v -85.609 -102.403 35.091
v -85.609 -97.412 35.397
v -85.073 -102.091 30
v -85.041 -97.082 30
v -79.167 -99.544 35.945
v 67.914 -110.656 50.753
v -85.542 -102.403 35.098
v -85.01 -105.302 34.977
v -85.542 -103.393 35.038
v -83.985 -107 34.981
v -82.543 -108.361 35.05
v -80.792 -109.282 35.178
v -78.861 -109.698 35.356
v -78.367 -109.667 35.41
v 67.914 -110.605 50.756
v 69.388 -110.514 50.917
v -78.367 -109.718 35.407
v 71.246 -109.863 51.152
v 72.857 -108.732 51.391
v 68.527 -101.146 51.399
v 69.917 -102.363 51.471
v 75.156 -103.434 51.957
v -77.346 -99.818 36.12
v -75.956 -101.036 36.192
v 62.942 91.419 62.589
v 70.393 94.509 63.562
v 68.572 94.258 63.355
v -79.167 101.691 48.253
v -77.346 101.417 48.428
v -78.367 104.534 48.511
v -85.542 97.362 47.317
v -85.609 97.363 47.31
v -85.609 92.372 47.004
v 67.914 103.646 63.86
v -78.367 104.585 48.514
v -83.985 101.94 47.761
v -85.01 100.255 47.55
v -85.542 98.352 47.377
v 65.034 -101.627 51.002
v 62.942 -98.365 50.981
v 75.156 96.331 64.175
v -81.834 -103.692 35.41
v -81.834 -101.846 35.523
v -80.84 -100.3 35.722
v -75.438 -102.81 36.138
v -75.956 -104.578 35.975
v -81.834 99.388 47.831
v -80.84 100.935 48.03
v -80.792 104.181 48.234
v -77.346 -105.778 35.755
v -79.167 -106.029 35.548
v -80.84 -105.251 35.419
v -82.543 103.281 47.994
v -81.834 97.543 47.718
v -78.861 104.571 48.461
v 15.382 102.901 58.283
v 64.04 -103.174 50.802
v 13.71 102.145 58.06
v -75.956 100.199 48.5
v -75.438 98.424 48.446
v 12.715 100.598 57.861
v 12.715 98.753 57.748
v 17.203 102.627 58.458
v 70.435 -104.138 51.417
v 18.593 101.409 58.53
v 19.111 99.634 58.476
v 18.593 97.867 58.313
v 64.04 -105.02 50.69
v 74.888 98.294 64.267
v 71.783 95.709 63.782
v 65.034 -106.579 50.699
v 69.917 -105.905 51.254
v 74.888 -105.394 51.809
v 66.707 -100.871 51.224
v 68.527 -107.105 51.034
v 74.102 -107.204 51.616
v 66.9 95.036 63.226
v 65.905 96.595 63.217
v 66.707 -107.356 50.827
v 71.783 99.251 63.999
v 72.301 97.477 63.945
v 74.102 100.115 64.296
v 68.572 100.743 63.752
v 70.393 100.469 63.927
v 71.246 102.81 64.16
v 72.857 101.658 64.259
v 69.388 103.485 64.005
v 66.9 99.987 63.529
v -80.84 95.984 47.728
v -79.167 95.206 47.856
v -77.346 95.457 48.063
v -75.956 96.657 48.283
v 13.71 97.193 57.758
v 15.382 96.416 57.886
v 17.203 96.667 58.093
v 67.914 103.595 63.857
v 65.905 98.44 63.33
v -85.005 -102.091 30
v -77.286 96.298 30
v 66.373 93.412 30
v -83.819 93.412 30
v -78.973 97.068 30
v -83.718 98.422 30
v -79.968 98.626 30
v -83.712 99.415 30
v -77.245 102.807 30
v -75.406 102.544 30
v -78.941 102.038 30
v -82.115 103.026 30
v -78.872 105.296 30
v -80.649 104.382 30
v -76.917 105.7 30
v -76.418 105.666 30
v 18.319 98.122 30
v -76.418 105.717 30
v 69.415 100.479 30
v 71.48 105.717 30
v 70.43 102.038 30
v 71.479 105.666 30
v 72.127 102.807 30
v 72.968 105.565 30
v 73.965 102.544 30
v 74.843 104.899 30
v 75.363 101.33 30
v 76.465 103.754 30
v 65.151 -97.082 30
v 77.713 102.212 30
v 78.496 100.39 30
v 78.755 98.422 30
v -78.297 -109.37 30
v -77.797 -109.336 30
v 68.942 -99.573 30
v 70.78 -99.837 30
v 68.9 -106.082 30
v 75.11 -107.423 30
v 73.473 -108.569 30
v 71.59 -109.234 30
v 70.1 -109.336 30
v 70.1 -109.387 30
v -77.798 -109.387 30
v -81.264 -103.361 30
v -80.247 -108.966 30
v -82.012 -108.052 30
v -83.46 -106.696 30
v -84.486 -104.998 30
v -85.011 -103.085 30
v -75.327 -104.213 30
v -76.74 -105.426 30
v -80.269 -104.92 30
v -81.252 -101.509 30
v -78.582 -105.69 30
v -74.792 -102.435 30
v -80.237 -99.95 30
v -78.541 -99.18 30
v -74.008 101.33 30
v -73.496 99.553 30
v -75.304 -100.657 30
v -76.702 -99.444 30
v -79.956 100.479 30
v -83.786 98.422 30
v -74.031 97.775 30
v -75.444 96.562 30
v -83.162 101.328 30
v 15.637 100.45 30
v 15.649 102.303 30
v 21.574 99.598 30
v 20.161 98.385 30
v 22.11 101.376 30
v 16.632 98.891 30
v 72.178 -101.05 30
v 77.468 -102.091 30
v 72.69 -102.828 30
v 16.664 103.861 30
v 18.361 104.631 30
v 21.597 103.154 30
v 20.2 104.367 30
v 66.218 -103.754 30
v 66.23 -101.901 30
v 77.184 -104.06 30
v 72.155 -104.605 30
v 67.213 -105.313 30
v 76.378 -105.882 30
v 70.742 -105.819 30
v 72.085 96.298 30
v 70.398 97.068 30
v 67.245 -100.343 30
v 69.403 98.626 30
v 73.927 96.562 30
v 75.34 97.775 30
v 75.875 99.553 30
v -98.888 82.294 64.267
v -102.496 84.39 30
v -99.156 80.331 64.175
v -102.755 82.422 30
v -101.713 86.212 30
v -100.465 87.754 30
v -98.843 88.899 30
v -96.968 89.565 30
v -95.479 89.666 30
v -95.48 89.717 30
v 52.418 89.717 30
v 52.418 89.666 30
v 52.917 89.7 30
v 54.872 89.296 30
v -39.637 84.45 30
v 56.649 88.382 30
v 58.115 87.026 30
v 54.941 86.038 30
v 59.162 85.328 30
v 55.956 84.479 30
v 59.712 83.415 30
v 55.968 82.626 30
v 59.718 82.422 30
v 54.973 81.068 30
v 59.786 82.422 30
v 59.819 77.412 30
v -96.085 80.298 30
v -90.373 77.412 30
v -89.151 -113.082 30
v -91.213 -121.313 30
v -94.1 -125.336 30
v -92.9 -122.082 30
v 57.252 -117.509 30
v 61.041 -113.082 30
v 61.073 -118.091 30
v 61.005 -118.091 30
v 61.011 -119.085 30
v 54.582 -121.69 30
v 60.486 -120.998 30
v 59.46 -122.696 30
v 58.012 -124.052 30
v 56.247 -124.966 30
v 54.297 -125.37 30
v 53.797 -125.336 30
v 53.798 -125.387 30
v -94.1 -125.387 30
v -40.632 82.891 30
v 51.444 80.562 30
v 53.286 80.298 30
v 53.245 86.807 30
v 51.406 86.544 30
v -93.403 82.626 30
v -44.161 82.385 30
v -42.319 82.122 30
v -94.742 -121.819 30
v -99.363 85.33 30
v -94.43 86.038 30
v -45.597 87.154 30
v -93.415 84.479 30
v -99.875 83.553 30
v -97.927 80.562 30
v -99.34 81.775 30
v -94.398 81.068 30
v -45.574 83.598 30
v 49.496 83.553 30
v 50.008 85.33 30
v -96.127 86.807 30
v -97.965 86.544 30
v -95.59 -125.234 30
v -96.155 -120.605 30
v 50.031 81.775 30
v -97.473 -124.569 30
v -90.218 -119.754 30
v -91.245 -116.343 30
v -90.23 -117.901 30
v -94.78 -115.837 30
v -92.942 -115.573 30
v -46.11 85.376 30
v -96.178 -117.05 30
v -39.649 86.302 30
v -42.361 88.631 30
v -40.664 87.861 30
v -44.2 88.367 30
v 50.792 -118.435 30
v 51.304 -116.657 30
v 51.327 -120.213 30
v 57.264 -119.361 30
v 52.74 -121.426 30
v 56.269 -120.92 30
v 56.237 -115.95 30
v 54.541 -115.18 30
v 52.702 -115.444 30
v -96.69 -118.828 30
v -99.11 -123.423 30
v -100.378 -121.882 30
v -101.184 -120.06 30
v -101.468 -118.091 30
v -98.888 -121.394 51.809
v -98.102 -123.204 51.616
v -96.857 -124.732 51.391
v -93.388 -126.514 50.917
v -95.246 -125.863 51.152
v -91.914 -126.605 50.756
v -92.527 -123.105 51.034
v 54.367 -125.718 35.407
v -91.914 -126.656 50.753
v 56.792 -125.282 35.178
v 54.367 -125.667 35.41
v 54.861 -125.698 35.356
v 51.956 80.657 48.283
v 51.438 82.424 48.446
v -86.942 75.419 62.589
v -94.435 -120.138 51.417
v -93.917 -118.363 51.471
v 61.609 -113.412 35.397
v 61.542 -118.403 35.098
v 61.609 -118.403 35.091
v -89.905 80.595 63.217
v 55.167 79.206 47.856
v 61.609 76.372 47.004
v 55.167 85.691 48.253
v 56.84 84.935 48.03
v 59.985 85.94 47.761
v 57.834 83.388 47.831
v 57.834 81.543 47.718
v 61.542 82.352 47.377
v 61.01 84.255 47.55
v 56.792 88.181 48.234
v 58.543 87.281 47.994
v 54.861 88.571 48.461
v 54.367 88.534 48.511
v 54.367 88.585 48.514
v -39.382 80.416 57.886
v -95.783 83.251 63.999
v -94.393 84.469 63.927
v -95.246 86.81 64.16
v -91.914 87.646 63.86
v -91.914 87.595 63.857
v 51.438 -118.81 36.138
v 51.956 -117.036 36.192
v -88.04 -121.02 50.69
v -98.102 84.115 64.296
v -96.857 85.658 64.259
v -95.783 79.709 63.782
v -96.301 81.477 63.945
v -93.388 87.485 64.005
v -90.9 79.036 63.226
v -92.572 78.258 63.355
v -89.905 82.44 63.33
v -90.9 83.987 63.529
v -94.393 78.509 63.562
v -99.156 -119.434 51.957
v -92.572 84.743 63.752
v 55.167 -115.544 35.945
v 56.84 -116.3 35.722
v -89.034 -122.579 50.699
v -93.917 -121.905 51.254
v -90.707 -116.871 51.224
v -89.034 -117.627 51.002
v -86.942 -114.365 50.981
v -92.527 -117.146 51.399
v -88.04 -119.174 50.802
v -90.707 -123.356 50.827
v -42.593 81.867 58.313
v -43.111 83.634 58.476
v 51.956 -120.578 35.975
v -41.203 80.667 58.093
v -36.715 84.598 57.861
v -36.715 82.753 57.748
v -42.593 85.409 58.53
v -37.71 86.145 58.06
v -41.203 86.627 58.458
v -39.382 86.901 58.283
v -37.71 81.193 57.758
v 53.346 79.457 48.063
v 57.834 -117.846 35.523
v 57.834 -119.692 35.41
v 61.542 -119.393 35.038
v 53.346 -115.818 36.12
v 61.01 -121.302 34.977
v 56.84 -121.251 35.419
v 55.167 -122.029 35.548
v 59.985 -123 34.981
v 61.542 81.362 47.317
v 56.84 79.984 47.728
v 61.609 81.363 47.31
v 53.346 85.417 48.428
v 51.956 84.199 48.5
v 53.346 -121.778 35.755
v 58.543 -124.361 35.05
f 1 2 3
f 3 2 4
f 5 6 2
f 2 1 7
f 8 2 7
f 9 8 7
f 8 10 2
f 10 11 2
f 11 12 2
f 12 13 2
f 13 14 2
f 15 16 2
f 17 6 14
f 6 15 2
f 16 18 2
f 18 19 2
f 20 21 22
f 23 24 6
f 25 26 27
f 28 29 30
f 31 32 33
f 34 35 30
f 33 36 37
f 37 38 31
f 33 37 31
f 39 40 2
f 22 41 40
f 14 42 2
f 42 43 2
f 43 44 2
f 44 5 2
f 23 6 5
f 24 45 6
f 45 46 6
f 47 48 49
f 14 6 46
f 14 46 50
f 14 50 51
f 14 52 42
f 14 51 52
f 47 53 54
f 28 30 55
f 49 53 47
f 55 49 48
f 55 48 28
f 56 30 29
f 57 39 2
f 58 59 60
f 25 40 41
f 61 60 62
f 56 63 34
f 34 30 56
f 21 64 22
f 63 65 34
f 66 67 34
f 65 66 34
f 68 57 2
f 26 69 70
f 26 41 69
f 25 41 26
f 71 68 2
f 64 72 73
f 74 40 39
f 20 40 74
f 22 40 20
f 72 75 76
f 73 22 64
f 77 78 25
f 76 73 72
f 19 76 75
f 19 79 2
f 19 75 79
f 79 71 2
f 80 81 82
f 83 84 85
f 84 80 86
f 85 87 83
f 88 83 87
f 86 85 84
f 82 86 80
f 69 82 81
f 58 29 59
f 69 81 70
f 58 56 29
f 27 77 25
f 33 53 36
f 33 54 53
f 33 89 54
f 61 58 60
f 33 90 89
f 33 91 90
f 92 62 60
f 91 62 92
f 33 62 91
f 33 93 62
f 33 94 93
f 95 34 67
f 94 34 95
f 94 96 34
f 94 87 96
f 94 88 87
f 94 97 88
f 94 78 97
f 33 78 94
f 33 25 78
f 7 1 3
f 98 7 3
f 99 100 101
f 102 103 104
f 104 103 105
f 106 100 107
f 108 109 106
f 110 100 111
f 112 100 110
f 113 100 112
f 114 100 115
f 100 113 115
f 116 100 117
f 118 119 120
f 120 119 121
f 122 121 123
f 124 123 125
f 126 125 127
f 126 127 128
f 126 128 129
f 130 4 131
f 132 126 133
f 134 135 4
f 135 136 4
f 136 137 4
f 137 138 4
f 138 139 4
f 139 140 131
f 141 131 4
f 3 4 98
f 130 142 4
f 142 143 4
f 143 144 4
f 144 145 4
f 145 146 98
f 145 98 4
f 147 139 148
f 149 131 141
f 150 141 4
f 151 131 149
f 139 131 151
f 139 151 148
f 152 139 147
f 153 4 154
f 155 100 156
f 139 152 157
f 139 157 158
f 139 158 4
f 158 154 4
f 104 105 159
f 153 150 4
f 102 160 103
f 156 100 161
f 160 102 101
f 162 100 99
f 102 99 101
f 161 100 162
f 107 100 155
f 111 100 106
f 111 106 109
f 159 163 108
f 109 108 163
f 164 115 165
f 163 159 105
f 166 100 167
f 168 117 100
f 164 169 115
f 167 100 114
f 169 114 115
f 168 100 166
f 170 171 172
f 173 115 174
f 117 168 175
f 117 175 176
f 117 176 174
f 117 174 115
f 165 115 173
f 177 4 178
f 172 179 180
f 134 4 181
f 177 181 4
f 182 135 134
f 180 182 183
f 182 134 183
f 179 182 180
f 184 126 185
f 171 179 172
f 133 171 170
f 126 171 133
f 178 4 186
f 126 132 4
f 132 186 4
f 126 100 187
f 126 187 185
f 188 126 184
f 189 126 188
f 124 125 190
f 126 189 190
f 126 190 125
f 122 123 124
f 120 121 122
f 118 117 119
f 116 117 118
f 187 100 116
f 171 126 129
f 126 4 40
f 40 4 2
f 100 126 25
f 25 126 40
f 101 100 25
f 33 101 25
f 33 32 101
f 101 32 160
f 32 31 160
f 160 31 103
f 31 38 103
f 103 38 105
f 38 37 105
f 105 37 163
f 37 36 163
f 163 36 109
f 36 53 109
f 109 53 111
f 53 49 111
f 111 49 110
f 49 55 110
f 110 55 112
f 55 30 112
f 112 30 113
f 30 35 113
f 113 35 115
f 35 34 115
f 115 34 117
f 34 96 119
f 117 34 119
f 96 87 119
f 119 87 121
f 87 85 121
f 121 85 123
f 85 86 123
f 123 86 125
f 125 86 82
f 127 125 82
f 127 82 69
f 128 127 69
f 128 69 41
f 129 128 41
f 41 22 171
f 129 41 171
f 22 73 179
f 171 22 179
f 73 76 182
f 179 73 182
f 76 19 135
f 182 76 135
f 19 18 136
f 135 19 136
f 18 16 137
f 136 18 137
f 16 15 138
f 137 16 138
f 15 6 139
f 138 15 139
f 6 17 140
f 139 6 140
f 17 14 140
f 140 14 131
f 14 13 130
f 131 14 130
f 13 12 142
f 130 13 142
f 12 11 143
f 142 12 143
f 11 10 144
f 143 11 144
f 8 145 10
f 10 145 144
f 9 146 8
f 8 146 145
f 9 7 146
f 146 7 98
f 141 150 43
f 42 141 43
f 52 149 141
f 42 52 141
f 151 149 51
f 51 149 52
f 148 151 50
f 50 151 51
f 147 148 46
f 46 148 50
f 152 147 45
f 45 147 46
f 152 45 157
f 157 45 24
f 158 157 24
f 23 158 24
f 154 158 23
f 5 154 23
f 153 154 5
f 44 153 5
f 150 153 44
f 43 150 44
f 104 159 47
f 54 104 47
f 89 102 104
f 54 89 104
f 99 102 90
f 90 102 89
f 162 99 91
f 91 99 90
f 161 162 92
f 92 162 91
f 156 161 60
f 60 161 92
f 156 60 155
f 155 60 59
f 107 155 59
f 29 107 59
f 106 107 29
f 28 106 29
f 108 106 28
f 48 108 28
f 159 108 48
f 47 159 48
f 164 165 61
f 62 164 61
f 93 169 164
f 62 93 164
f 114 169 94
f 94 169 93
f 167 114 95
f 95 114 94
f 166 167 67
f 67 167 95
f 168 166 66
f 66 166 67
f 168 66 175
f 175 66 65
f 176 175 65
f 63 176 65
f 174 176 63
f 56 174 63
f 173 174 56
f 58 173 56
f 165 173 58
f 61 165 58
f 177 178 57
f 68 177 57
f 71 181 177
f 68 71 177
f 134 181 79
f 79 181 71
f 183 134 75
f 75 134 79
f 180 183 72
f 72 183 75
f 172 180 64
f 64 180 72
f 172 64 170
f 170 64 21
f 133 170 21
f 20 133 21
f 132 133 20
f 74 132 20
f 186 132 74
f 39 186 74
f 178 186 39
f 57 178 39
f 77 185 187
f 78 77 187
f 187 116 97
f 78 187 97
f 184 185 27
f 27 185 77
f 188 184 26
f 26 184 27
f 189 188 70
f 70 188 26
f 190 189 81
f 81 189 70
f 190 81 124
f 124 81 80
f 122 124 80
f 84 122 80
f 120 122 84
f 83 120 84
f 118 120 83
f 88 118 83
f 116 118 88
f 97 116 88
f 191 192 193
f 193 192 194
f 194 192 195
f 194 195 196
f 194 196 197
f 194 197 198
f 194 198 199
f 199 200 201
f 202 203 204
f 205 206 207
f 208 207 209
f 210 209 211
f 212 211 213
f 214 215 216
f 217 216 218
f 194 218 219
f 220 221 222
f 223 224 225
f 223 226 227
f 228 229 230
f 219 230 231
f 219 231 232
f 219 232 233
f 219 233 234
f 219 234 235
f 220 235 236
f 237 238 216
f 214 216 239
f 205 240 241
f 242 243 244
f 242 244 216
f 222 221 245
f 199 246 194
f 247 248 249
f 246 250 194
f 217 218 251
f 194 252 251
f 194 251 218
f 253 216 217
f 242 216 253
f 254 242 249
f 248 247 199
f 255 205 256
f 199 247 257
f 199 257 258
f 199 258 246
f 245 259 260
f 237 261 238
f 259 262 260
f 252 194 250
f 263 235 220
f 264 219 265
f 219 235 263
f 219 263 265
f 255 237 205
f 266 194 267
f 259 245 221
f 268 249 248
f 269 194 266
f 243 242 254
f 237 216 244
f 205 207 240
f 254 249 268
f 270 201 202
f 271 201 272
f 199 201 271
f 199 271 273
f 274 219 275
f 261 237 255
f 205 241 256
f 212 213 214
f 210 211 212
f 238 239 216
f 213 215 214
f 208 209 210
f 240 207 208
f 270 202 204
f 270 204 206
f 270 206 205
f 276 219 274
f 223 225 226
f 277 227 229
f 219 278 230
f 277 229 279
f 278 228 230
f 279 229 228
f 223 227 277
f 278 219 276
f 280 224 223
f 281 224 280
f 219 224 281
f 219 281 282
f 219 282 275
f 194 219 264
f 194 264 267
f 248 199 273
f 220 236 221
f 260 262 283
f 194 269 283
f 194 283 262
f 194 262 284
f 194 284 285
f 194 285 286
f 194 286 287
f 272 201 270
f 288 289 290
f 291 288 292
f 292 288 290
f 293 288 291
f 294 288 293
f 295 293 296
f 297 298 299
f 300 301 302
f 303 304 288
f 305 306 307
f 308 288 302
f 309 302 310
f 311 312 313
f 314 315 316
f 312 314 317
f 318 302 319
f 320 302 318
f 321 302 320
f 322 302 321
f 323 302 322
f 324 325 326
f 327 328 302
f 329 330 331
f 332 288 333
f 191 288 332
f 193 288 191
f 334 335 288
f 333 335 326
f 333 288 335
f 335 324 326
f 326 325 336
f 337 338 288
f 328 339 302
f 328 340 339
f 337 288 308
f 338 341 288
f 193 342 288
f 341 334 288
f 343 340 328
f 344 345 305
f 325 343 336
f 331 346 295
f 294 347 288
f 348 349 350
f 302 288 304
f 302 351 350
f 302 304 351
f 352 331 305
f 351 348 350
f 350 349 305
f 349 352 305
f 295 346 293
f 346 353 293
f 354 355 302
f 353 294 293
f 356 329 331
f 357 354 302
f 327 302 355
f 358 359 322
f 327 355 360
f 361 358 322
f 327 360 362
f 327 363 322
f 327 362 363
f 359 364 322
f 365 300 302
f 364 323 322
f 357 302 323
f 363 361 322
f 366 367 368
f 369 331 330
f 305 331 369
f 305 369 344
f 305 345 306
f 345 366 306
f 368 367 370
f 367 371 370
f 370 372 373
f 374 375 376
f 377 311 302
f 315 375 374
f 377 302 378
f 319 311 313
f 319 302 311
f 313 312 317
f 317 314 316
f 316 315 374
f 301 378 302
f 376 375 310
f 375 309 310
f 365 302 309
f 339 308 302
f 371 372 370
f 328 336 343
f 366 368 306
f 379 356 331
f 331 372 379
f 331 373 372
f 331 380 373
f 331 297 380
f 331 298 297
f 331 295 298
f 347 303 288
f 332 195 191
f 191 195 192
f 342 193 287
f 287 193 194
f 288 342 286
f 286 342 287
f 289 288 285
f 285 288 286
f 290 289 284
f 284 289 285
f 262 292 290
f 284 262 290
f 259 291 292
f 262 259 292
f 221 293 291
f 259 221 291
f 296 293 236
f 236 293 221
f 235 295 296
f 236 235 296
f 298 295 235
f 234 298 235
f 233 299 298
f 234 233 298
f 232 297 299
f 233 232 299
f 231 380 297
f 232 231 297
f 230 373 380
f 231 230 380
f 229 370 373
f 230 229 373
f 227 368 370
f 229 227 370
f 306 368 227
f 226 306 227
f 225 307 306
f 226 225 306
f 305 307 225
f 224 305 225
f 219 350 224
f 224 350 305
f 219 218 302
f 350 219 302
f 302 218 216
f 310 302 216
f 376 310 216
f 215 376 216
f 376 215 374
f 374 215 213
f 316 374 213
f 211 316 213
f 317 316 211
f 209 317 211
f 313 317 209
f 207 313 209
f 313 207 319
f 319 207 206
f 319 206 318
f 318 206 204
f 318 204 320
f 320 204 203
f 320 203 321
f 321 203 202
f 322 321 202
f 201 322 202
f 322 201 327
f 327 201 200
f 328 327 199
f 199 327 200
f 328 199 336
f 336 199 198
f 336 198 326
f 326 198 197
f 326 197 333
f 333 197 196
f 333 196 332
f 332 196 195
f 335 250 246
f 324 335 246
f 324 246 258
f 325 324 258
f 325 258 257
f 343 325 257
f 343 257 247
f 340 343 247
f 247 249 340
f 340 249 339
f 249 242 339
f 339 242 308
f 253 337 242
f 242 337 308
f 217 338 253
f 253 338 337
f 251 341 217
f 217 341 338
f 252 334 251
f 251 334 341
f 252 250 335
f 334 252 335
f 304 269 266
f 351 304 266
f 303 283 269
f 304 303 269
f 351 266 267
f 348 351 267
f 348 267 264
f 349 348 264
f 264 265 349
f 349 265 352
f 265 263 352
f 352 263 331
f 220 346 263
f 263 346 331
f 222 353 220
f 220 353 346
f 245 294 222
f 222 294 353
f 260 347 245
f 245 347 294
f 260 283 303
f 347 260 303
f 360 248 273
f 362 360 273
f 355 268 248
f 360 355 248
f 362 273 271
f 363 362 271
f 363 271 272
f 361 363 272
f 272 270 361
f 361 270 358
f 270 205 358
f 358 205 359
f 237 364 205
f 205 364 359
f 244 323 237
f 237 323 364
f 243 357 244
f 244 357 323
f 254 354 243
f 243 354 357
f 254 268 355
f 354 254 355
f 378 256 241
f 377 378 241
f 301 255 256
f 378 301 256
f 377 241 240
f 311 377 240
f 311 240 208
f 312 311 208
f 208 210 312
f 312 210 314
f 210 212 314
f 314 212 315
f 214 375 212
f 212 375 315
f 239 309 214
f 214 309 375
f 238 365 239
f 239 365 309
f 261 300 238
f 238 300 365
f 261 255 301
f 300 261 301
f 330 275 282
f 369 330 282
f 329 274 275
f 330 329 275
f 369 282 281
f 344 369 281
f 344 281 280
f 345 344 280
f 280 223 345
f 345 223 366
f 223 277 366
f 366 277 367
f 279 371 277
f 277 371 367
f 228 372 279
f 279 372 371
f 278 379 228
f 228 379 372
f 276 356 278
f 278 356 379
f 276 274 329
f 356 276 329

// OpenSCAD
union () {
  difference () {
    rotate (a=3.5, v=[1,0,0]) {
      rotate (a=-6.0, v=[0,1,0]) {
        difference () {
          translate ([0,0,25]) {
            union () {
              cube([161.65099999999998, 200.139, 50], center=true);
              cube([147.087, 214.703, 50], center=true);
              translate ([73.5435,100.0695,0]) {
                cylinder (h=50, r=7.282, center=true);
              }
              translate ([-73.5435,100.0695,0]) {
                cylinder (h=50, r=7.282, center=true);
              }
              translate ([-73.5435,-100.0695,0]) {
                cylinder (h=50, r=7.282, center=true);
              }
              translate ([73.5435,-100.0695,0]) {
                cylinder (h=50, r=7.282, center=true);
              }
            }
          }
          translate ([74.6725,101.19850000000001,0]) {
            cylinder (h=250, r=3.282, center=true);
          }
          translate ([21.189500000000002,103.0185,0]) {
            cylinder (h=250, r=3.282, center=true);
          }
          translate ([-73.8805,101.19850000000001,0]) {
            cylinder (h=250, r=3.282, center=true);
          }
          translate ([6.525499999999994,-26.522499999999994,0]) {
            cylinder (h=250, r=3.282, center=true);
          }
          translate ([-73.8805,-100.41249999999998,0]) {
            cylinder (h=250, r=3.282, center=true);
          }
          translate ([72.7965,-100.80449999999998,0]) {
            cylinder (h=250, r=3.282, center=true);
          }
          translate ([-10,0,25]) {
            cube([157.087, 190.139, 60], center=true);
          }
        }
      }
    }
    translate ([0,0,-20]) {
      cube([1000, 1000, 100], center=true);
    }
  }
  translate ([-24,-16,0]) {
    mirror ([1,0,0]) {
      difference () {
        rotate (a=3.5, v=[1,0,0]) {
          rotate (a=-6.0, v=[0,1,0]) {
            difference () {
              translate ([0,0,25]) {
                union () {
                  cube([161.65099999999998, 200.139, 50], center=true);
                  cube([147.087, 214.703, 50], center=true);
                  translate ([73.5435,100.0695,0]) {
                    cylinder (h=50, r=7.282, center=true);
                  }
                  translate ([-73.5435,100.0695,0]) {
                    cylinder (h=50, r=7.282, center=true);
                  }
                  translate ([-73.5435,-100.0695,0]) {
                    cylinder (h=50, r=7.282, center=true);
                  }
                  translate ([73.5435,-100.0695,0]) {
                    cylinder (h=50, r=7.282, center=true);
                  }
                }
              }
              translate ([74.6725,101.19850000000001,0]) {
                cylinder (h=250, r=3.282, center=true);
              }
              translate ([21.189500000000002,103.0185,0]) {
                cylinder (h=250, r=3.282, center=true);
              }
              translate ([-73.8805,101.19850000000001,0]) {
                cylinder (h=250, r=3.282, center=true);
              }
              translate ([6.525499999999994,-26.522499999999994,0]) {
                cylinder (h=250, r=3.282, center=true);
              }
              translate ([-73.8805,-100.41249999999998,0]) {
                cylinder (h=250, r=3.282, center=true);
              }
              translate ([72.7965,-100.80449999999998,0]) {
                cylinder (h=250, r=3.282, center=true);
              }
              translate ([-10,0,25]) {
                cube([157.087, 190.139, 60], center=true);
              }
            }
          }
        }
        translate ([0,0,-20]) {
          cube([1000, 1000, 100], center=true);
        }
      }
    }
  }
}
